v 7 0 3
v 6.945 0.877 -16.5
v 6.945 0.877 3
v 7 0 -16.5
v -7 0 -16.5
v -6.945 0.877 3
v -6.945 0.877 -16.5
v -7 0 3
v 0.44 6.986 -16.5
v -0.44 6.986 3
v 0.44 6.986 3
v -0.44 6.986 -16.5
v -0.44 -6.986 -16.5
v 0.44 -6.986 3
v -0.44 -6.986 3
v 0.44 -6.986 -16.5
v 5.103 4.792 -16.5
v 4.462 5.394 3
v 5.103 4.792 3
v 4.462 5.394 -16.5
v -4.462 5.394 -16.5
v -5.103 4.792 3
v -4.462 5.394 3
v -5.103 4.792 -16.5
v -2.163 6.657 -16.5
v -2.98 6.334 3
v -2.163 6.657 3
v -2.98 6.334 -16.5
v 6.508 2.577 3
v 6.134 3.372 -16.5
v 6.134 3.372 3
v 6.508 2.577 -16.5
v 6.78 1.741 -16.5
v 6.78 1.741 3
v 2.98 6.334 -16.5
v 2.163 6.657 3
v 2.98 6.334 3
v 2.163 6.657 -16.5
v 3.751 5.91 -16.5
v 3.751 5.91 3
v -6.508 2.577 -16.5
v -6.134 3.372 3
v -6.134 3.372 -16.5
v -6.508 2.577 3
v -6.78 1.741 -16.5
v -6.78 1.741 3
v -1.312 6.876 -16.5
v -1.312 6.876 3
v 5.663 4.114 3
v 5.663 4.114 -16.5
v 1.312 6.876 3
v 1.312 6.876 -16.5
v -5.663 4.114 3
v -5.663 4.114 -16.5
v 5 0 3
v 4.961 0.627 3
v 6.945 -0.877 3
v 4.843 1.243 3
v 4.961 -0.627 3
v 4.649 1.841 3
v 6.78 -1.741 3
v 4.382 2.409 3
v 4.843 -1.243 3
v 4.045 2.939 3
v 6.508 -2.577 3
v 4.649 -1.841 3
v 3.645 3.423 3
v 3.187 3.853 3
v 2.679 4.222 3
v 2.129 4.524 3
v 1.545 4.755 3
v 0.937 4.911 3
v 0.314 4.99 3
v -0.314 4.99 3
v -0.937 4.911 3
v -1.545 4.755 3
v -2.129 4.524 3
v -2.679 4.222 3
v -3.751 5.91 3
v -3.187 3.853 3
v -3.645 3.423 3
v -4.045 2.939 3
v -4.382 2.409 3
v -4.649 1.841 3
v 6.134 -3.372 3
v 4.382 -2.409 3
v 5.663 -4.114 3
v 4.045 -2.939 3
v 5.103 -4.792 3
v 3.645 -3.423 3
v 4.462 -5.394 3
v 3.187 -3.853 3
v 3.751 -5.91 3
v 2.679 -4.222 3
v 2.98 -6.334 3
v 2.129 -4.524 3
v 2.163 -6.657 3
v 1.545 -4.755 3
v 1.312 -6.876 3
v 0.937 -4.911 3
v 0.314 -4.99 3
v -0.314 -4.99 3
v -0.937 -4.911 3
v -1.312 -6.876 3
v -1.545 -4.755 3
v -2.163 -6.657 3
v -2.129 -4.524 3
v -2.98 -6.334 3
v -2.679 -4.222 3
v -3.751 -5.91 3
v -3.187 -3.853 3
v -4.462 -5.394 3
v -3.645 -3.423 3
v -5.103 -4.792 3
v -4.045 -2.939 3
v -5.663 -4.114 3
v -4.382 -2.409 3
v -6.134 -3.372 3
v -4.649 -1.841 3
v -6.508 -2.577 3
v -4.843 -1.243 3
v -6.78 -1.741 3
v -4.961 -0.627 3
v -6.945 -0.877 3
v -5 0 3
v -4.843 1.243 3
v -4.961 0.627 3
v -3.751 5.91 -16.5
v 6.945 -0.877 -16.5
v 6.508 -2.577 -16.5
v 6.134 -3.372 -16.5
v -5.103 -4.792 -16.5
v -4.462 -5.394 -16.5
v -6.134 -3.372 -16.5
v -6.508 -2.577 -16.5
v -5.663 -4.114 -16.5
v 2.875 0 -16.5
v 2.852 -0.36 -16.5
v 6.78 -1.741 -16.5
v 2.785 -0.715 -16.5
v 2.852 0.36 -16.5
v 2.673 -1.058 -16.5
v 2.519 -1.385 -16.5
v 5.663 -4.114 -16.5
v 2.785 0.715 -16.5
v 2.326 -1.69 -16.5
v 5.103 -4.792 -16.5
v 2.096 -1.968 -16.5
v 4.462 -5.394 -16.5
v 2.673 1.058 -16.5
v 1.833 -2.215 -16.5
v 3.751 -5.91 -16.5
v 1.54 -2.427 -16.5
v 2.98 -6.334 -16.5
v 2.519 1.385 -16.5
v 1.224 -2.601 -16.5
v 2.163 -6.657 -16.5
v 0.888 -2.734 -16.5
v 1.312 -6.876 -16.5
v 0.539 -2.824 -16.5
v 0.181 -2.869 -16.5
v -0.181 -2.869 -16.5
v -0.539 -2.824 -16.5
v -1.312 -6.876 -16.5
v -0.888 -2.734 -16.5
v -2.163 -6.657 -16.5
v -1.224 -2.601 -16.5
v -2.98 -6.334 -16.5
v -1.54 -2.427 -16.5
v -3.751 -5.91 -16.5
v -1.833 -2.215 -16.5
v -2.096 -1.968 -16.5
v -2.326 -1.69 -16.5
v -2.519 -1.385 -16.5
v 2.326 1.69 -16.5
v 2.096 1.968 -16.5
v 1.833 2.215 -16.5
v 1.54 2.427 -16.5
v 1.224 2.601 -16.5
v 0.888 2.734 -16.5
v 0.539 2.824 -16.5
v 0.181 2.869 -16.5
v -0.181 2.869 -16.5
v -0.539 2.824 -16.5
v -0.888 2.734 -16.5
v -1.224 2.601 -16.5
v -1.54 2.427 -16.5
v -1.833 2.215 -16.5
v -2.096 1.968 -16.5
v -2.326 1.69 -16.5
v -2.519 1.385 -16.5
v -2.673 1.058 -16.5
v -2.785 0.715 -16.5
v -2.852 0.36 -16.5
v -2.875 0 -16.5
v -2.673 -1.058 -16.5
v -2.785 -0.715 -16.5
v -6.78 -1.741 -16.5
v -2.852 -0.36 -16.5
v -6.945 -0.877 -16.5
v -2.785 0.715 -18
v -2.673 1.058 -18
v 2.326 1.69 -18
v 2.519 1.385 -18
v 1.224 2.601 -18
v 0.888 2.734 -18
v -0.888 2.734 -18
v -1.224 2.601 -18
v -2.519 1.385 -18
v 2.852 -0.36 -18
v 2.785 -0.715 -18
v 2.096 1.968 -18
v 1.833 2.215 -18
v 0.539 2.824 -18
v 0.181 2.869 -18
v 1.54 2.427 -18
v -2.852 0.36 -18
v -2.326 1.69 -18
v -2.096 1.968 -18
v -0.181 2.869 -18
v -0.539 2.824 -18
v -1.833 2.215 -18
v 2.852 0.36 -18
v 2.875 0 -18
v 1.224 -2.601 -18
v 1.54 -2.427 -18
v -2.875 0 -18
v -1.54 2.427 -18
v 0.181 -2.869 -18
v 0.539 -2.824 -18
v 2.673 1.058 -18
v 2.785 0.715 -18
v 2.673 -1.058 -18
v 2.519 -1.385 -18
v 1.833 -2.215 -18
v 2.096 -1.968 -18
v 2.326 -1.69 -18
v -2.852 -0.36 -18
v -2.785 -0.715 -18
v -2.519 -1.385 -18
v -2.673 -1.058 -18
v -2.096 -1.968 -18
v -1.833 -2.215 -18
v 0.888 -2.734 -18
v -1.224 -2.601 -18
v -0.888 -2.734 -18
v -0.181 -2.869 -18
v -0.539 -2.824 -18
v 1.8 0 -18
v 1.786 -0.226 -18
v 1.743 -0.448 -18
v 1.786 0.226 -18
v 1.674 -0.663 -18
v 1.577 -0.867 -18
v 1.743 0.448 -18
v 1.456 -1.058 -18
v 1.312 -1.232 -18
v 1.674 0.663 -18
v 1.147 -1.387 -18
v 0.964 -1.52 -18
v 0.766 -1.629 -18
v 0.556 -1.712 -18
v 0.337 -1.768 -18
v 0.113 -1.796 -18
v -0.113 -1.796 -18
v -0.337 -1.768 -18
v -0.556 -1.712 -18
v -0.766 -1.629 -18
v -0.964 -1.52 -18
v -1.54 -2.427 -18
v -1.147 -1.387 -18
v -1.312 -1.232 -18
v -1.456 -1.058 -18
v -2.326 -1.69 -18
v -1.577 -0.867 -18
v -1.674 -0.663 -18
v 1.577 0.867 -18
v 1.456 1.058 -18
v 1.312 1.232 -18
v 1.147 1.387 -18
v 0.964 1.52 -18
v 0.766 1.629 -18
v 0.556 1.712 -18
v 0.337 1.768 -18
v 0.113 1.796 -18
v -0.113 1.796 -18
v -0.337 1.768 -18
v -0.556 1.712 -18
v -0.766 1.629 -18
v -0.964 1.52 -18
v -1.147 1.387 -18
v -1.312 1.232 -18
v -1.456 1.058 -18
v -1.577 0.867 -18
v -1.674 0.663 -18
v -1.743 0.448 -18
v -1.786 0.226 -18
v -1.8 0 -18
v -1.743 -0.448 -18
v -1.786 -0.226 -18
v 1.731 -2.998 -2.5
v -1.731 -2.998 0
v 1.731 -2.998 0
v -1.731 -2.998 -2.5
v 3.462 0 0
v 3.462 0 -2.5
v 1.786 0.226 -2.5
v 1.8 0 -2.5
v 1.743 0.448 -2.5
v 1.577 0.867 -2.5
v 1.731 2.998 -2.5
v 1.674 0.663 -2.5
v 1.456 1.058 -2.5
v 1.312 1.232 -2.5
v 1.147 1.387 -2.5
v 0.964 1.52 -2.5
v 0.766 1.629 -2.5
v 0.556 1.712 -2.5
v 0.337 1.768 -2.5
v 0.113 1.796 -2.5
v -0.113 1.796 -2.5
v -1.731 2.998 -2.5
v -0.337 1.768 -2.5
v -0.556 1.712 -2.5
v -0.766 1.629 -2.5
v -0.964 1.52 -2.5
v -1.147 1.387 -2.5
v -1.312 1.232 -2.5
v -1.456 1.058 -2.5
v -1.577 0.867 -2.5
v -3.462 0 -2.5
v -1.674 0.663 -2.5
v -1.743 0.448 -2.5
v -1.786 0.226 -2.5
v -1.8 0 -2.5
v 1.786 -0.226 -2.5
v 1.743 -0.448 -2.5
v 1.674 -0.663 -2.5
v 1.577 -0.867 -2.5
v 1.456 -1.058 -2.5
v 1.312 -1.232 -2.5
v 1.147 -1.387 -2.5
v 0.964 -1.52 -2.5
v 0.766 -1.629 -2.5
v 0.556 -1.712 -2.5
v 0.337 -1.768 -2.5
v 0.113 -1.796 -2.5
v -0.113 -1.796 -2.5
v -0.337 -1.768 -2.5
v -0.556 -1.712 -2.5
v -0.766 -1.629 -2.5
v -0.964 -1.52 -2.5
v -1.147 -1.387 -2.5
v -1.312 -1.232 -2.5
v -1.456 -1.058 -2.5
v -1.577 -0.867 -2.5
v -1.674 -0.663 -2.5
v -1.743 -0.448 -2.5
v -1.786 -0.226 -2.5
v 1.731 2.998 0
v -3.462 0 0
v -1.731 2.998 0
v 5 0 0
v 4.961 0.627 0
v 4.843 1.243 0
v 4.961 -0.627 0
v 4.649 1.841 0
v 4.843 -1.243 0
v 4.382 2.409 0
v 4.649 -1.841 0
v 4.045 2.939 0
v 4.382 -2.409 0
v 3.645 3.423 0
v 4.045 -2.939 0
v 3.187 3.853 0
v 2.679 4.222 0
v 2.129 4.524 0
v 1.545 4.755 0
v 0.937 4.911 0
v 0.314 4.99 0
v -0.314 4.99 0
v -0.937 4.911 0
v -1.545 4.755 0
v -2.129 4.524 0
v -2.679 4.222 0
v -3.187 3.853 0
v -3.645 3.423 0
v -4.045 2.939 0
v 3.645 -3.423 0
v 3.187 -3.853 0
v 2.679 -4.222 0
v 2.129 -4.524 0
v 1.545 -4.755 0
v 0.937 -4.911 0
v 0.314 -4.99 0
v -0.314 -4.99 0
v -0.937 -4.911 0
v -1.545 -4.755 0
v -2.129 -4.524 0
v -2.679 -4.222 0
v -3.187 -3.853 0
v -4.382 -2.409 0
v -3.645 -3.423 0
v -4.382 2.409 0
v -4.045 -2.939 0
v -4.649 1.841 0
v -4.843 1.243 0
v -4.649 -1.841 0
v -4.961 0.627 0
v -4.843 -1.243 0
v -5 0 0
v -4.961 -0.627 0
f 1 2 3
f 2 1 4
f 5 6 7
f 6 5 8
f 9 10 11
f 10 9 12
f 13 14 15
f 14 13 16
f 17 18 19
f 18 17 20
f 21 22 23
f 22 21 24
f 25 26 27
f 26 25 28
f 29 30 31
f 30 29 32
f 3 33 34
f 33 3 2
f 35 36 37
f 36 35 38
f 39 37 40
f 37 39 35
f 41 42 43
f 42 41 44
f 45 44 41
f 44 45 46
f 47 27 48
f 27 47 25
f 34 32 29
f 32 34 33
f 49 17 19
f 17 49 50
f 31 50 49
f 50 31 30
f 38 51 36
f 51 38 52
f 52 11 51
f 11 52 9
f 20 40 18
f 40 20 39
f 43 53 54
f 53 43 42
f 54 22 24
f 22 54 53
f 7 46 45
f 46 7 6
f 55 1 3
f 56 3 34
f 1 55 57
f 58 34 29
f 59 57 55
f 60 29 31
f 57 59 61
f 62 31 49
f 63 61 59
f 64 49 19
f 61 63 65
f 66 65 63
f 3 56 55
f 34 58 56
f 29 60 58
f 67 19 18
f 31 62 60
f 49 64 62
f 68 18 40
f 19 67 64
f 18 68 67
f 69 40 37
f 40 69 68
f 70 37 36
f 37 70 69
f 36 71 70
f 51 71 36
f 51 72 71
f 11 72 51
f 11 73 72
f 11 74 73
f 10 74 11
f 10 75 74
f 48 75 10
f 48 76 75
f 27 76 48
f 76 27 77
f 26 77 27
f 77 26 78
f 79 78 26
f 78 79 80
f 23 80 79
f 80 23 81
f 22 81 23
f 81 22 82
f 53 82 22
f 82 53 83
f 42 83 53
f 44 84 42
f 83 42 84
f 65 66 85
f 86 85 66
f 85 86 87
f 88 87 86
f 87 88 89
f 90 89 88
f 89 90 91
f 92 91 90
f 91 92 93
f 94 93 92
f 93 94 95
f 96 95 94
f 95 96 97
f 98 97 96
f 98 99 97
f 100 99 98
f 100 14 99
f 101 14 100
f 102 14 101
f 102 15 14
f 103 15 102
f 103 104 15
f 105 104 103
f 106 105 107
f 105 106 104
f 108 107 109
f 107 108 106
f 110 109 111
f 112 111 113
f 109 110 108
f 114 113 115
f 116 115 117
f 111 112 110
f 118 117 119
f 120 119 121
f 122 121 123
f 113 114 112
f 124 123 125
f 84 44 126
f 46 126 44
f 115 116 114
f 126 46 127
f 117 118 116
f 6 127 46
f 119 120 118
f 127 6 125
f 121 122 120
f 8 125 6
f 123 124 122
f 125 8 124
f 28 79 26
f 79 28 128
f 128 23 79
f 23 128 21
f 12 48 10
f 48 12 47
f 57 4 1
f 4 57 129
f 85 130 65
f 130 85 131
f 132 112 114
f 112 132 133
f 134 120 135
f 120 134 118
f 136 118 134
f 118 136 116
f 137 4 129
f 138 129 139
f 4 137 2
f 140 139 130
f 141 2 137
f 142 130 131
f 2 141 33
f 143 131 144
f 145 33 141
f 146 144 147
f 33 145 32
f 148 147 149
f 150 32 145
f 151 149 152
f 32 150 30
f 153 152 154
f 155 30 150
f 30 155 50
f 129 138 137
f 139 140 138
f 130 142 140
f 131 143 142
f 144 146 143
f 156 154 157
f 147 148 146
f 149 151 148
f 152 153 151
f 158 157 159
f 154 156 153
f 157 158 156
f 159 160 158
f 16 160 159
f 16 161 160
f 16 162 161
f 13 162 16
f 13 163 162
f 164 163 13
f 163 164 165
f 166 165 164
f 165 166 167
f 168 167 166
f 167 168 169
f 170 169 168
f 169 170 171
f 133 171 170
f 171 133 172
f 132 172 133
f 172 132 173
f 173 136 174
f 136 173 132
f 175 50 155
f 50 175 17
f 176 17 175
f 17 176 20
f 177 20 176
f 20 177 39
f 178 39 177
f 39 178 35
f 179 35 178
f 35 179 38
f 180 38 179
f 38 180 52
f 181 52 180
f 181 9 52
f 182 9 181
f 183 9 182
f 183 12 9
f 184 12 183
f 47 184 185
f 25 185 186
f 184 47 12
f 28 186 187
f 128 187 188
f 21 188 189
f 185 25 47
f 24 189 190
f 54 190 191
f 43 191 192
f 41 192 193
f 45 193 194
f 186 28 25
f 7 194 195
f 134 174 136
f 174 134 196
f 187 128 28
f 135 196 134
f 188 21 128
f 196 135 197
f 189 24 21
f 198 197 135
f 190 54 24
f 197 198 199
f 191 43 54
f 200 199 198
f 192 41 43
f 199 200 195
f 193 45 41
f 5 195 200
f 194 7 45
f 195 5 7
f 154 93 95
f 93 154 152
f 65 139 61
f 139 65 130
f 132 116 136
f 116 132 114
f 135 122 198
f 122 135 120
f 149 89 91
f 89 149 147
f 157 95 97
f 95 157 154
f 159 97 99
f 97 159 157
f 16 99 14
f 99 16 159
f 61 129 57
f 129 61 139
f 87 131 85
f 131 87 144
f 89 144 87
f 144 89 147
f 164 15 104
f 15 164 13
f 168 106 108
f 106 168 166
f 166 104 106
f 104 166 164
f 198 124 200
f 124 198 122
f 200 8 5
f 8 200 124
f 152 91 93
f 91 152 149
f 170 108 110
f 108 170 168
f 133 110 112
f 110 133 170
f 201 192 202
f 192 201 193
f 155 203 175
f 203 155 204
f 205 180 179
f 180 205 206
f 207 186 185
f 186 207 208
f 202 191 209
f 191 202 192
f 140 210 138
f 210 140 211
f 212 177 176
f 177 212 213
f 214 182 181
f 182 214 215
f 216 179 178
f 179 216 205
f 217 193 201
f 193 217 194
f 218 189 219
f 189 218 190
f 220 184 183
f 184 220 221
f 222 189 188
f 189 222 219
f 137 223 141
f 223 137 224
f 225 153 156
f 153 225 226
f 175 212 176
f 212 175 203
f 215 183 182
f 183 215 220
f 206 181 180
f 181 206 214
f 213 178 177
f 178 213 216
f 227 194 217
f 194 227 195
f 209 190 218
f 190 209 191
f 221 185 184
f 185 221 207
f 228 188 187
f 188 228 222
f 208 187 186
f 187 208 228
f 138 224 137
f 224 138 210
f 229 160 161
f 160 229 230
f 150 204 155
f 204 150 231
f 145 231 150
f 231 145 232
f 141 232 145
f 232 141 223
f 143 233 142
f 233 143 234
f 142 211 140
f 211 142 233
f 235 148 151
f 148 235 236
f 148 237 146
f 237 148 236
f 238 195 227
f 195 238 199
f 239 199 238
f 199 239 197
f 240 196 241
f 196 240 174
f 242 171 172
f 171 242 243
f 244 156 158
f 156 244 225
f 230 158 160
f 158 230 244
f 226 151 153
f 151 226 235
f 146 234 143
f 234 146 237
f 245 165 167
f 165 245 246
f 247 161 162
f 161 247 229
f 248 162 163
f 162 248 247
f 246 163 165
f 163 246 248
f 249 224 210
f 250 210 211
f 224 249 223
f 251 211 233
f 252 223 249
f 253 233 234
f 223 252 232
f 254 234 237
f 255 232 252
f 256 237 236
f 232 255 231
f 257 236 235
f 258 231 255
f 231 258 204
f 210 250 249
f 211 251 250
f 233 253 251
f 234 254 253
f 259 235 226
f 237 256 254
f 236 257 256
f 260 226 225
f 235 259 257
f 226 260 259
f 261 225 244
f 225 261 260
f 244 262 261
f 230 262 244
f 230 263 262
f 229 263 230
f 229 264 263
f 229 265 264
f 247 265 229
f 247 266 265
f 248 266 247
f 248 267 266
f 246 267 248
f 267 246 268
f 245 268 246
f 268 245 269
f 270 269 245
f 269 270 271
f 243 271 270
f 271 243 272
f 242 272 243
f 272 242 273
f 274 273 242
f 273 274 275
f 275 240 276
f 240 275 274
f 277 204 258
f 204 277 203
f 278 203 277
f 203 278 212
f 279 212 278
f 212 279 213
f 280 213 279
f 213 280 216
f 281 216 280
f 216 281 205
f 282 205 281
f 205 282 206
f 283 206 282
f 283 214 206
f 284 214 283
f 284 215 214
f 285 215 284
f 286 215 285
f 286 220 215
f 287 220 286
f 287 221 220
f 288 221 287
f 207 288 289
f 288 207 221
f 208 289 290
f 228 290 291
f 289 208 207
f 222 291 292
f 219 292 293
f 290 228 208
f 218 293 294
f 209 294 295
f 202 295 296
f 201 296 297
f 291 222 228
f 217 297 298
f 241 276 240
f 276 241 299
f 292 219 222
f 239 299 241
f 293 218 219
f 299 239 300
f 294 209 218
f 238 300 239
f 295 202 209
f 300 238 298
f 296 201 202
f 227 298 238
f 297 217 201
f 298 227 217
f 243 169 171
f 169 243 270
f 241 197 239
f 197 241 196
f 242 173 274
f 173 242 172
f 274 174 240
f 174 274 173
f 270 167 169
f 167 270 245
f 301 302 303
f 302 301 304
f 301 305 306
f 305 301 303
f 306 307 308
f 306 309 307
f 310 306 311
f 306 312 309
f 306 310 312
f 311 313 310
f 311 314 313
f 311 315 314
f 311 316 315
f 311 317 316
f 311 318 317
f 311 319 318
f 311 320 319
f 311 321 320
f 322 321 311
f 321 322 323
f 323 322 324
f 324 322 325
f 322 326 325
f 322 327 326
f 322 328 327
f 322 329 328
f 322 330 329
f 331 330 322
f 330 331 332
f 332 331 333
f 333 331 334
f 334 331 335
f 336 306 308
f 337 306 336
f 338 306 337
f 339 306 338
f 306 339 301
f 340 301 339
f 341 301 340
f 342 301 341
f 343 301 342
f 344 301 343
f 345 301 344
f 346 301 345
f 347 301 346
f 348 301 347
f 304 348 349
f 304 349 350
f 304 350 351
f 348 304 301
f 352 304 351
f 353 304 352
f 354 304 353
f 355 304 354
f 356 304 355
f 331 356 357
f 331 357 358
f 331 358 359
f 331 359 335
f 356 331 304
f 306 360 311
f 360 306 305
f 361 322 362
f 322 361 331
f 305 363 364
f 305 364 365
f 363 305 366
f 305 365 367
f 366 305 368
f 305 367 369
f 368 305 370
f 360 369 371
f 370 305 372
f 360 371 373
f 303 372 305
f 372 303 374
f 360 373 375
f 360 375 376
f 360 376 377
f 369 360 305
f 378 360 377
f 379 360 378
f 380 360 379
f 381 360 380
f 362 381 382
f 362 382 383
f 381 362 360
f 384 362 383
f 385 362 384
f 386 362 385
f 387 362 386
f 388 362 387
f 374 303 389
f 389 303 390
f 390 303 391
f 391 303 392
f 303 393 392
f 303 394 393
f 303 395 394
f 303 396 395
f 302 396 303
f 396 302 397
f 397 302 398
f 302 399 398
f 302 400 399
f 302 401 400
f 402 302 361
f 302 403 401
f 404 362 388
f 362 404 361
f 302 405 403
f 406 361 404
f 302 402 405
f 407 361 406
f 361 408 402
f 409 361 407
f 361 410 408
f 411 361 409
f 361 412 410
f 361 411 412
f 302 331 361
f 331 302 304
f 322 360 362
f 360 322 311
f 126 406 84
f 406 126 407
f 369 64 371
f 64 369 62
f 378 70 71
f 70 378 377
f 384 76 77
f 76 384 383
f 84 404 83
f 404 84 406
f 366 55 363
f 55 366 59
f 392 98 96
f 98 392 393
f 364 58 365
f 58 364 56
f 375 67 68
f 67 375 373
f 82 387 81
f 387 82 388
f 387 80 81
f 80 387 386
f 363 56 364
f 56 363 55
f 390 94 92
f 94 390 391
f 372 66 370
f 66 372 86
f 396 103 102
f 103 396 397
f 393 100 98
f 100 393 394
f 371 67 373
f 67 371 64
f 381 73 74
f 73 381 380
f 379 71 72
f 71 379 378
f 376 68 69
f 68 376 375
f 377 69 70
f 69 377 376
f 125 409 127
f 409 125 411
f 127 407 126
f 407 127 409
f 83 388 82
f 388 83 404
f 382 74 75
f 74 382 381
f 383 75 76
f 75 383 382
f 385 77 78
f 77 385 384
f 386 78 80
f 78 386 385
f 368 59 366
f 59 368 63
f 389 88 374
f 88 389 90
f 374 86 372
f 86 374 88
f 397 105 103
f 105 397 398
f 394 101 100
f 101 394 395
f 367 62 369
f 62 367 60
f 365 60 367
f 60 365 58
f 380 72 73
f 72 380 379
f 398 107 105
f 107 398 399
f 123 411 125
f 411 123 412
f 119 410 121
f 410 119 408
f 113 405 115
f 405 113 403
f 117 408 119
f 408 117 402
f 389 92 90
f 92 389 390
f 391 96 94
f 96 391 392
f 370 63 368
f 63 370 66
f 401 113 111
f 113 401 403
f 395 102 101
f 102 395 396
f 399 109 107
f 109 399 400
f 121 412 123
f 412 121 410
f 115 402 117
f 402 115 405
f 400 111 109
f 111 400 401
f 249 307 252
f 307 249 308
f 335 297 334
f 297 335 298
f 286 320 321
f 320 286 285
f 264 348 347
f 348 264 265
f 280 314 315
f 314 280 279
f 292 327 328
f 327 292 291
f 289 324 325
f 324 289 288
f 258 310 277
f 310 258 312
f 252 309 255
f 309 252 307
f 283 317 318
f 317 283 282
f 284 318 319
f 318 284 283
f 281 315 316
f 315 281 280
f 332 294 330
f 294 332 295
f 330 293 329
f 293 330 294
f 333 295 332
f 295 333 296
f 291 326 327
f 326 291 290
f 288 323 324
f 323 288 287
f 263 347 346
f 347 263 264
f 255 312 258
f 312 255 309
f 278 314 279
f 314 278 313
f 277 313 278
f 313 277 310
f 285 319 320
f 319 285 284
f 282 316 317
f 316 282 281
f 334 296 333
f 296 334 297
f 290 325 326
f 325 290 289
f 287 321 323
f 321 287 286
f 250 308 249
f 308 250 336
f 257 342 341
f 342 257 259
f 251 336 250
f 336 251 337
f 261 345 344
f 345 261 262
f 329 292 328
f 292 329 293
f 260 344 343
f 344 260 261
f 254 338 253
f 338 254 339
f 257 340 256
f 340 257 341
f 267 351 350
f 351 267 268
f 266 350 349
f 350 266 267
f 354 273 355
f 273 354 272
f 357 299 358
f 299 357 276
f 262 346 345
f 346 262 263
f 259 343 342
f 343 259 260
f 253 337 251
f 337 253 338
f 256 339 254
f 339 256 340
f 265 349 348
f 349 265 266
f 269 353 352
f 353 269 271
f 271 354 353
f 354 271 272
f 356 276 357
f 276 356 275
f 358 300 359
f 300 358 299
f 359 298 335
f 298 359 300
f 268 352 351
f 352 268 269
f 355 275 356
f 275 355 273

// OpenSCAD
$fn = 50;

difference() {
	union() {
		translate(v = [0, 0, -16.5]) {
			cylinder(h = 19.5, r = 7.0);
		}
		#translate(v = [0, 0, -18.0]) {
			cylinder(h = 18, r = 2.875);
		}
	}
	union() {
		translate(v = [0, 0, 0]) {
			rotate(a = [0, 0, 0]) {
				difference() {
					union() {
						translate(v = [0, 0, -2.5]) {
							linear_extrude(height = 2.5) {
								polygon(points = [[3.4619999999999997, 0.0], [1.7310000000000003, 2.9981799479017264], [-1.7309999999999992, 2.9981799479017264], [-3.4619999999999997, 4.2397272186481365e-16], [-1.7310000000000014, -2.998179947901726], [1.7309999999999977, -2.9981799479017277]]);
							}
						}
					}
					union();
				}
			}
		}
		#cylinder(h = 3, r = 5.0);
		#translate(v = [0, 0, -100.0]) {
			cylinder(h = 200, r = 1.8);
		}
	}
}
